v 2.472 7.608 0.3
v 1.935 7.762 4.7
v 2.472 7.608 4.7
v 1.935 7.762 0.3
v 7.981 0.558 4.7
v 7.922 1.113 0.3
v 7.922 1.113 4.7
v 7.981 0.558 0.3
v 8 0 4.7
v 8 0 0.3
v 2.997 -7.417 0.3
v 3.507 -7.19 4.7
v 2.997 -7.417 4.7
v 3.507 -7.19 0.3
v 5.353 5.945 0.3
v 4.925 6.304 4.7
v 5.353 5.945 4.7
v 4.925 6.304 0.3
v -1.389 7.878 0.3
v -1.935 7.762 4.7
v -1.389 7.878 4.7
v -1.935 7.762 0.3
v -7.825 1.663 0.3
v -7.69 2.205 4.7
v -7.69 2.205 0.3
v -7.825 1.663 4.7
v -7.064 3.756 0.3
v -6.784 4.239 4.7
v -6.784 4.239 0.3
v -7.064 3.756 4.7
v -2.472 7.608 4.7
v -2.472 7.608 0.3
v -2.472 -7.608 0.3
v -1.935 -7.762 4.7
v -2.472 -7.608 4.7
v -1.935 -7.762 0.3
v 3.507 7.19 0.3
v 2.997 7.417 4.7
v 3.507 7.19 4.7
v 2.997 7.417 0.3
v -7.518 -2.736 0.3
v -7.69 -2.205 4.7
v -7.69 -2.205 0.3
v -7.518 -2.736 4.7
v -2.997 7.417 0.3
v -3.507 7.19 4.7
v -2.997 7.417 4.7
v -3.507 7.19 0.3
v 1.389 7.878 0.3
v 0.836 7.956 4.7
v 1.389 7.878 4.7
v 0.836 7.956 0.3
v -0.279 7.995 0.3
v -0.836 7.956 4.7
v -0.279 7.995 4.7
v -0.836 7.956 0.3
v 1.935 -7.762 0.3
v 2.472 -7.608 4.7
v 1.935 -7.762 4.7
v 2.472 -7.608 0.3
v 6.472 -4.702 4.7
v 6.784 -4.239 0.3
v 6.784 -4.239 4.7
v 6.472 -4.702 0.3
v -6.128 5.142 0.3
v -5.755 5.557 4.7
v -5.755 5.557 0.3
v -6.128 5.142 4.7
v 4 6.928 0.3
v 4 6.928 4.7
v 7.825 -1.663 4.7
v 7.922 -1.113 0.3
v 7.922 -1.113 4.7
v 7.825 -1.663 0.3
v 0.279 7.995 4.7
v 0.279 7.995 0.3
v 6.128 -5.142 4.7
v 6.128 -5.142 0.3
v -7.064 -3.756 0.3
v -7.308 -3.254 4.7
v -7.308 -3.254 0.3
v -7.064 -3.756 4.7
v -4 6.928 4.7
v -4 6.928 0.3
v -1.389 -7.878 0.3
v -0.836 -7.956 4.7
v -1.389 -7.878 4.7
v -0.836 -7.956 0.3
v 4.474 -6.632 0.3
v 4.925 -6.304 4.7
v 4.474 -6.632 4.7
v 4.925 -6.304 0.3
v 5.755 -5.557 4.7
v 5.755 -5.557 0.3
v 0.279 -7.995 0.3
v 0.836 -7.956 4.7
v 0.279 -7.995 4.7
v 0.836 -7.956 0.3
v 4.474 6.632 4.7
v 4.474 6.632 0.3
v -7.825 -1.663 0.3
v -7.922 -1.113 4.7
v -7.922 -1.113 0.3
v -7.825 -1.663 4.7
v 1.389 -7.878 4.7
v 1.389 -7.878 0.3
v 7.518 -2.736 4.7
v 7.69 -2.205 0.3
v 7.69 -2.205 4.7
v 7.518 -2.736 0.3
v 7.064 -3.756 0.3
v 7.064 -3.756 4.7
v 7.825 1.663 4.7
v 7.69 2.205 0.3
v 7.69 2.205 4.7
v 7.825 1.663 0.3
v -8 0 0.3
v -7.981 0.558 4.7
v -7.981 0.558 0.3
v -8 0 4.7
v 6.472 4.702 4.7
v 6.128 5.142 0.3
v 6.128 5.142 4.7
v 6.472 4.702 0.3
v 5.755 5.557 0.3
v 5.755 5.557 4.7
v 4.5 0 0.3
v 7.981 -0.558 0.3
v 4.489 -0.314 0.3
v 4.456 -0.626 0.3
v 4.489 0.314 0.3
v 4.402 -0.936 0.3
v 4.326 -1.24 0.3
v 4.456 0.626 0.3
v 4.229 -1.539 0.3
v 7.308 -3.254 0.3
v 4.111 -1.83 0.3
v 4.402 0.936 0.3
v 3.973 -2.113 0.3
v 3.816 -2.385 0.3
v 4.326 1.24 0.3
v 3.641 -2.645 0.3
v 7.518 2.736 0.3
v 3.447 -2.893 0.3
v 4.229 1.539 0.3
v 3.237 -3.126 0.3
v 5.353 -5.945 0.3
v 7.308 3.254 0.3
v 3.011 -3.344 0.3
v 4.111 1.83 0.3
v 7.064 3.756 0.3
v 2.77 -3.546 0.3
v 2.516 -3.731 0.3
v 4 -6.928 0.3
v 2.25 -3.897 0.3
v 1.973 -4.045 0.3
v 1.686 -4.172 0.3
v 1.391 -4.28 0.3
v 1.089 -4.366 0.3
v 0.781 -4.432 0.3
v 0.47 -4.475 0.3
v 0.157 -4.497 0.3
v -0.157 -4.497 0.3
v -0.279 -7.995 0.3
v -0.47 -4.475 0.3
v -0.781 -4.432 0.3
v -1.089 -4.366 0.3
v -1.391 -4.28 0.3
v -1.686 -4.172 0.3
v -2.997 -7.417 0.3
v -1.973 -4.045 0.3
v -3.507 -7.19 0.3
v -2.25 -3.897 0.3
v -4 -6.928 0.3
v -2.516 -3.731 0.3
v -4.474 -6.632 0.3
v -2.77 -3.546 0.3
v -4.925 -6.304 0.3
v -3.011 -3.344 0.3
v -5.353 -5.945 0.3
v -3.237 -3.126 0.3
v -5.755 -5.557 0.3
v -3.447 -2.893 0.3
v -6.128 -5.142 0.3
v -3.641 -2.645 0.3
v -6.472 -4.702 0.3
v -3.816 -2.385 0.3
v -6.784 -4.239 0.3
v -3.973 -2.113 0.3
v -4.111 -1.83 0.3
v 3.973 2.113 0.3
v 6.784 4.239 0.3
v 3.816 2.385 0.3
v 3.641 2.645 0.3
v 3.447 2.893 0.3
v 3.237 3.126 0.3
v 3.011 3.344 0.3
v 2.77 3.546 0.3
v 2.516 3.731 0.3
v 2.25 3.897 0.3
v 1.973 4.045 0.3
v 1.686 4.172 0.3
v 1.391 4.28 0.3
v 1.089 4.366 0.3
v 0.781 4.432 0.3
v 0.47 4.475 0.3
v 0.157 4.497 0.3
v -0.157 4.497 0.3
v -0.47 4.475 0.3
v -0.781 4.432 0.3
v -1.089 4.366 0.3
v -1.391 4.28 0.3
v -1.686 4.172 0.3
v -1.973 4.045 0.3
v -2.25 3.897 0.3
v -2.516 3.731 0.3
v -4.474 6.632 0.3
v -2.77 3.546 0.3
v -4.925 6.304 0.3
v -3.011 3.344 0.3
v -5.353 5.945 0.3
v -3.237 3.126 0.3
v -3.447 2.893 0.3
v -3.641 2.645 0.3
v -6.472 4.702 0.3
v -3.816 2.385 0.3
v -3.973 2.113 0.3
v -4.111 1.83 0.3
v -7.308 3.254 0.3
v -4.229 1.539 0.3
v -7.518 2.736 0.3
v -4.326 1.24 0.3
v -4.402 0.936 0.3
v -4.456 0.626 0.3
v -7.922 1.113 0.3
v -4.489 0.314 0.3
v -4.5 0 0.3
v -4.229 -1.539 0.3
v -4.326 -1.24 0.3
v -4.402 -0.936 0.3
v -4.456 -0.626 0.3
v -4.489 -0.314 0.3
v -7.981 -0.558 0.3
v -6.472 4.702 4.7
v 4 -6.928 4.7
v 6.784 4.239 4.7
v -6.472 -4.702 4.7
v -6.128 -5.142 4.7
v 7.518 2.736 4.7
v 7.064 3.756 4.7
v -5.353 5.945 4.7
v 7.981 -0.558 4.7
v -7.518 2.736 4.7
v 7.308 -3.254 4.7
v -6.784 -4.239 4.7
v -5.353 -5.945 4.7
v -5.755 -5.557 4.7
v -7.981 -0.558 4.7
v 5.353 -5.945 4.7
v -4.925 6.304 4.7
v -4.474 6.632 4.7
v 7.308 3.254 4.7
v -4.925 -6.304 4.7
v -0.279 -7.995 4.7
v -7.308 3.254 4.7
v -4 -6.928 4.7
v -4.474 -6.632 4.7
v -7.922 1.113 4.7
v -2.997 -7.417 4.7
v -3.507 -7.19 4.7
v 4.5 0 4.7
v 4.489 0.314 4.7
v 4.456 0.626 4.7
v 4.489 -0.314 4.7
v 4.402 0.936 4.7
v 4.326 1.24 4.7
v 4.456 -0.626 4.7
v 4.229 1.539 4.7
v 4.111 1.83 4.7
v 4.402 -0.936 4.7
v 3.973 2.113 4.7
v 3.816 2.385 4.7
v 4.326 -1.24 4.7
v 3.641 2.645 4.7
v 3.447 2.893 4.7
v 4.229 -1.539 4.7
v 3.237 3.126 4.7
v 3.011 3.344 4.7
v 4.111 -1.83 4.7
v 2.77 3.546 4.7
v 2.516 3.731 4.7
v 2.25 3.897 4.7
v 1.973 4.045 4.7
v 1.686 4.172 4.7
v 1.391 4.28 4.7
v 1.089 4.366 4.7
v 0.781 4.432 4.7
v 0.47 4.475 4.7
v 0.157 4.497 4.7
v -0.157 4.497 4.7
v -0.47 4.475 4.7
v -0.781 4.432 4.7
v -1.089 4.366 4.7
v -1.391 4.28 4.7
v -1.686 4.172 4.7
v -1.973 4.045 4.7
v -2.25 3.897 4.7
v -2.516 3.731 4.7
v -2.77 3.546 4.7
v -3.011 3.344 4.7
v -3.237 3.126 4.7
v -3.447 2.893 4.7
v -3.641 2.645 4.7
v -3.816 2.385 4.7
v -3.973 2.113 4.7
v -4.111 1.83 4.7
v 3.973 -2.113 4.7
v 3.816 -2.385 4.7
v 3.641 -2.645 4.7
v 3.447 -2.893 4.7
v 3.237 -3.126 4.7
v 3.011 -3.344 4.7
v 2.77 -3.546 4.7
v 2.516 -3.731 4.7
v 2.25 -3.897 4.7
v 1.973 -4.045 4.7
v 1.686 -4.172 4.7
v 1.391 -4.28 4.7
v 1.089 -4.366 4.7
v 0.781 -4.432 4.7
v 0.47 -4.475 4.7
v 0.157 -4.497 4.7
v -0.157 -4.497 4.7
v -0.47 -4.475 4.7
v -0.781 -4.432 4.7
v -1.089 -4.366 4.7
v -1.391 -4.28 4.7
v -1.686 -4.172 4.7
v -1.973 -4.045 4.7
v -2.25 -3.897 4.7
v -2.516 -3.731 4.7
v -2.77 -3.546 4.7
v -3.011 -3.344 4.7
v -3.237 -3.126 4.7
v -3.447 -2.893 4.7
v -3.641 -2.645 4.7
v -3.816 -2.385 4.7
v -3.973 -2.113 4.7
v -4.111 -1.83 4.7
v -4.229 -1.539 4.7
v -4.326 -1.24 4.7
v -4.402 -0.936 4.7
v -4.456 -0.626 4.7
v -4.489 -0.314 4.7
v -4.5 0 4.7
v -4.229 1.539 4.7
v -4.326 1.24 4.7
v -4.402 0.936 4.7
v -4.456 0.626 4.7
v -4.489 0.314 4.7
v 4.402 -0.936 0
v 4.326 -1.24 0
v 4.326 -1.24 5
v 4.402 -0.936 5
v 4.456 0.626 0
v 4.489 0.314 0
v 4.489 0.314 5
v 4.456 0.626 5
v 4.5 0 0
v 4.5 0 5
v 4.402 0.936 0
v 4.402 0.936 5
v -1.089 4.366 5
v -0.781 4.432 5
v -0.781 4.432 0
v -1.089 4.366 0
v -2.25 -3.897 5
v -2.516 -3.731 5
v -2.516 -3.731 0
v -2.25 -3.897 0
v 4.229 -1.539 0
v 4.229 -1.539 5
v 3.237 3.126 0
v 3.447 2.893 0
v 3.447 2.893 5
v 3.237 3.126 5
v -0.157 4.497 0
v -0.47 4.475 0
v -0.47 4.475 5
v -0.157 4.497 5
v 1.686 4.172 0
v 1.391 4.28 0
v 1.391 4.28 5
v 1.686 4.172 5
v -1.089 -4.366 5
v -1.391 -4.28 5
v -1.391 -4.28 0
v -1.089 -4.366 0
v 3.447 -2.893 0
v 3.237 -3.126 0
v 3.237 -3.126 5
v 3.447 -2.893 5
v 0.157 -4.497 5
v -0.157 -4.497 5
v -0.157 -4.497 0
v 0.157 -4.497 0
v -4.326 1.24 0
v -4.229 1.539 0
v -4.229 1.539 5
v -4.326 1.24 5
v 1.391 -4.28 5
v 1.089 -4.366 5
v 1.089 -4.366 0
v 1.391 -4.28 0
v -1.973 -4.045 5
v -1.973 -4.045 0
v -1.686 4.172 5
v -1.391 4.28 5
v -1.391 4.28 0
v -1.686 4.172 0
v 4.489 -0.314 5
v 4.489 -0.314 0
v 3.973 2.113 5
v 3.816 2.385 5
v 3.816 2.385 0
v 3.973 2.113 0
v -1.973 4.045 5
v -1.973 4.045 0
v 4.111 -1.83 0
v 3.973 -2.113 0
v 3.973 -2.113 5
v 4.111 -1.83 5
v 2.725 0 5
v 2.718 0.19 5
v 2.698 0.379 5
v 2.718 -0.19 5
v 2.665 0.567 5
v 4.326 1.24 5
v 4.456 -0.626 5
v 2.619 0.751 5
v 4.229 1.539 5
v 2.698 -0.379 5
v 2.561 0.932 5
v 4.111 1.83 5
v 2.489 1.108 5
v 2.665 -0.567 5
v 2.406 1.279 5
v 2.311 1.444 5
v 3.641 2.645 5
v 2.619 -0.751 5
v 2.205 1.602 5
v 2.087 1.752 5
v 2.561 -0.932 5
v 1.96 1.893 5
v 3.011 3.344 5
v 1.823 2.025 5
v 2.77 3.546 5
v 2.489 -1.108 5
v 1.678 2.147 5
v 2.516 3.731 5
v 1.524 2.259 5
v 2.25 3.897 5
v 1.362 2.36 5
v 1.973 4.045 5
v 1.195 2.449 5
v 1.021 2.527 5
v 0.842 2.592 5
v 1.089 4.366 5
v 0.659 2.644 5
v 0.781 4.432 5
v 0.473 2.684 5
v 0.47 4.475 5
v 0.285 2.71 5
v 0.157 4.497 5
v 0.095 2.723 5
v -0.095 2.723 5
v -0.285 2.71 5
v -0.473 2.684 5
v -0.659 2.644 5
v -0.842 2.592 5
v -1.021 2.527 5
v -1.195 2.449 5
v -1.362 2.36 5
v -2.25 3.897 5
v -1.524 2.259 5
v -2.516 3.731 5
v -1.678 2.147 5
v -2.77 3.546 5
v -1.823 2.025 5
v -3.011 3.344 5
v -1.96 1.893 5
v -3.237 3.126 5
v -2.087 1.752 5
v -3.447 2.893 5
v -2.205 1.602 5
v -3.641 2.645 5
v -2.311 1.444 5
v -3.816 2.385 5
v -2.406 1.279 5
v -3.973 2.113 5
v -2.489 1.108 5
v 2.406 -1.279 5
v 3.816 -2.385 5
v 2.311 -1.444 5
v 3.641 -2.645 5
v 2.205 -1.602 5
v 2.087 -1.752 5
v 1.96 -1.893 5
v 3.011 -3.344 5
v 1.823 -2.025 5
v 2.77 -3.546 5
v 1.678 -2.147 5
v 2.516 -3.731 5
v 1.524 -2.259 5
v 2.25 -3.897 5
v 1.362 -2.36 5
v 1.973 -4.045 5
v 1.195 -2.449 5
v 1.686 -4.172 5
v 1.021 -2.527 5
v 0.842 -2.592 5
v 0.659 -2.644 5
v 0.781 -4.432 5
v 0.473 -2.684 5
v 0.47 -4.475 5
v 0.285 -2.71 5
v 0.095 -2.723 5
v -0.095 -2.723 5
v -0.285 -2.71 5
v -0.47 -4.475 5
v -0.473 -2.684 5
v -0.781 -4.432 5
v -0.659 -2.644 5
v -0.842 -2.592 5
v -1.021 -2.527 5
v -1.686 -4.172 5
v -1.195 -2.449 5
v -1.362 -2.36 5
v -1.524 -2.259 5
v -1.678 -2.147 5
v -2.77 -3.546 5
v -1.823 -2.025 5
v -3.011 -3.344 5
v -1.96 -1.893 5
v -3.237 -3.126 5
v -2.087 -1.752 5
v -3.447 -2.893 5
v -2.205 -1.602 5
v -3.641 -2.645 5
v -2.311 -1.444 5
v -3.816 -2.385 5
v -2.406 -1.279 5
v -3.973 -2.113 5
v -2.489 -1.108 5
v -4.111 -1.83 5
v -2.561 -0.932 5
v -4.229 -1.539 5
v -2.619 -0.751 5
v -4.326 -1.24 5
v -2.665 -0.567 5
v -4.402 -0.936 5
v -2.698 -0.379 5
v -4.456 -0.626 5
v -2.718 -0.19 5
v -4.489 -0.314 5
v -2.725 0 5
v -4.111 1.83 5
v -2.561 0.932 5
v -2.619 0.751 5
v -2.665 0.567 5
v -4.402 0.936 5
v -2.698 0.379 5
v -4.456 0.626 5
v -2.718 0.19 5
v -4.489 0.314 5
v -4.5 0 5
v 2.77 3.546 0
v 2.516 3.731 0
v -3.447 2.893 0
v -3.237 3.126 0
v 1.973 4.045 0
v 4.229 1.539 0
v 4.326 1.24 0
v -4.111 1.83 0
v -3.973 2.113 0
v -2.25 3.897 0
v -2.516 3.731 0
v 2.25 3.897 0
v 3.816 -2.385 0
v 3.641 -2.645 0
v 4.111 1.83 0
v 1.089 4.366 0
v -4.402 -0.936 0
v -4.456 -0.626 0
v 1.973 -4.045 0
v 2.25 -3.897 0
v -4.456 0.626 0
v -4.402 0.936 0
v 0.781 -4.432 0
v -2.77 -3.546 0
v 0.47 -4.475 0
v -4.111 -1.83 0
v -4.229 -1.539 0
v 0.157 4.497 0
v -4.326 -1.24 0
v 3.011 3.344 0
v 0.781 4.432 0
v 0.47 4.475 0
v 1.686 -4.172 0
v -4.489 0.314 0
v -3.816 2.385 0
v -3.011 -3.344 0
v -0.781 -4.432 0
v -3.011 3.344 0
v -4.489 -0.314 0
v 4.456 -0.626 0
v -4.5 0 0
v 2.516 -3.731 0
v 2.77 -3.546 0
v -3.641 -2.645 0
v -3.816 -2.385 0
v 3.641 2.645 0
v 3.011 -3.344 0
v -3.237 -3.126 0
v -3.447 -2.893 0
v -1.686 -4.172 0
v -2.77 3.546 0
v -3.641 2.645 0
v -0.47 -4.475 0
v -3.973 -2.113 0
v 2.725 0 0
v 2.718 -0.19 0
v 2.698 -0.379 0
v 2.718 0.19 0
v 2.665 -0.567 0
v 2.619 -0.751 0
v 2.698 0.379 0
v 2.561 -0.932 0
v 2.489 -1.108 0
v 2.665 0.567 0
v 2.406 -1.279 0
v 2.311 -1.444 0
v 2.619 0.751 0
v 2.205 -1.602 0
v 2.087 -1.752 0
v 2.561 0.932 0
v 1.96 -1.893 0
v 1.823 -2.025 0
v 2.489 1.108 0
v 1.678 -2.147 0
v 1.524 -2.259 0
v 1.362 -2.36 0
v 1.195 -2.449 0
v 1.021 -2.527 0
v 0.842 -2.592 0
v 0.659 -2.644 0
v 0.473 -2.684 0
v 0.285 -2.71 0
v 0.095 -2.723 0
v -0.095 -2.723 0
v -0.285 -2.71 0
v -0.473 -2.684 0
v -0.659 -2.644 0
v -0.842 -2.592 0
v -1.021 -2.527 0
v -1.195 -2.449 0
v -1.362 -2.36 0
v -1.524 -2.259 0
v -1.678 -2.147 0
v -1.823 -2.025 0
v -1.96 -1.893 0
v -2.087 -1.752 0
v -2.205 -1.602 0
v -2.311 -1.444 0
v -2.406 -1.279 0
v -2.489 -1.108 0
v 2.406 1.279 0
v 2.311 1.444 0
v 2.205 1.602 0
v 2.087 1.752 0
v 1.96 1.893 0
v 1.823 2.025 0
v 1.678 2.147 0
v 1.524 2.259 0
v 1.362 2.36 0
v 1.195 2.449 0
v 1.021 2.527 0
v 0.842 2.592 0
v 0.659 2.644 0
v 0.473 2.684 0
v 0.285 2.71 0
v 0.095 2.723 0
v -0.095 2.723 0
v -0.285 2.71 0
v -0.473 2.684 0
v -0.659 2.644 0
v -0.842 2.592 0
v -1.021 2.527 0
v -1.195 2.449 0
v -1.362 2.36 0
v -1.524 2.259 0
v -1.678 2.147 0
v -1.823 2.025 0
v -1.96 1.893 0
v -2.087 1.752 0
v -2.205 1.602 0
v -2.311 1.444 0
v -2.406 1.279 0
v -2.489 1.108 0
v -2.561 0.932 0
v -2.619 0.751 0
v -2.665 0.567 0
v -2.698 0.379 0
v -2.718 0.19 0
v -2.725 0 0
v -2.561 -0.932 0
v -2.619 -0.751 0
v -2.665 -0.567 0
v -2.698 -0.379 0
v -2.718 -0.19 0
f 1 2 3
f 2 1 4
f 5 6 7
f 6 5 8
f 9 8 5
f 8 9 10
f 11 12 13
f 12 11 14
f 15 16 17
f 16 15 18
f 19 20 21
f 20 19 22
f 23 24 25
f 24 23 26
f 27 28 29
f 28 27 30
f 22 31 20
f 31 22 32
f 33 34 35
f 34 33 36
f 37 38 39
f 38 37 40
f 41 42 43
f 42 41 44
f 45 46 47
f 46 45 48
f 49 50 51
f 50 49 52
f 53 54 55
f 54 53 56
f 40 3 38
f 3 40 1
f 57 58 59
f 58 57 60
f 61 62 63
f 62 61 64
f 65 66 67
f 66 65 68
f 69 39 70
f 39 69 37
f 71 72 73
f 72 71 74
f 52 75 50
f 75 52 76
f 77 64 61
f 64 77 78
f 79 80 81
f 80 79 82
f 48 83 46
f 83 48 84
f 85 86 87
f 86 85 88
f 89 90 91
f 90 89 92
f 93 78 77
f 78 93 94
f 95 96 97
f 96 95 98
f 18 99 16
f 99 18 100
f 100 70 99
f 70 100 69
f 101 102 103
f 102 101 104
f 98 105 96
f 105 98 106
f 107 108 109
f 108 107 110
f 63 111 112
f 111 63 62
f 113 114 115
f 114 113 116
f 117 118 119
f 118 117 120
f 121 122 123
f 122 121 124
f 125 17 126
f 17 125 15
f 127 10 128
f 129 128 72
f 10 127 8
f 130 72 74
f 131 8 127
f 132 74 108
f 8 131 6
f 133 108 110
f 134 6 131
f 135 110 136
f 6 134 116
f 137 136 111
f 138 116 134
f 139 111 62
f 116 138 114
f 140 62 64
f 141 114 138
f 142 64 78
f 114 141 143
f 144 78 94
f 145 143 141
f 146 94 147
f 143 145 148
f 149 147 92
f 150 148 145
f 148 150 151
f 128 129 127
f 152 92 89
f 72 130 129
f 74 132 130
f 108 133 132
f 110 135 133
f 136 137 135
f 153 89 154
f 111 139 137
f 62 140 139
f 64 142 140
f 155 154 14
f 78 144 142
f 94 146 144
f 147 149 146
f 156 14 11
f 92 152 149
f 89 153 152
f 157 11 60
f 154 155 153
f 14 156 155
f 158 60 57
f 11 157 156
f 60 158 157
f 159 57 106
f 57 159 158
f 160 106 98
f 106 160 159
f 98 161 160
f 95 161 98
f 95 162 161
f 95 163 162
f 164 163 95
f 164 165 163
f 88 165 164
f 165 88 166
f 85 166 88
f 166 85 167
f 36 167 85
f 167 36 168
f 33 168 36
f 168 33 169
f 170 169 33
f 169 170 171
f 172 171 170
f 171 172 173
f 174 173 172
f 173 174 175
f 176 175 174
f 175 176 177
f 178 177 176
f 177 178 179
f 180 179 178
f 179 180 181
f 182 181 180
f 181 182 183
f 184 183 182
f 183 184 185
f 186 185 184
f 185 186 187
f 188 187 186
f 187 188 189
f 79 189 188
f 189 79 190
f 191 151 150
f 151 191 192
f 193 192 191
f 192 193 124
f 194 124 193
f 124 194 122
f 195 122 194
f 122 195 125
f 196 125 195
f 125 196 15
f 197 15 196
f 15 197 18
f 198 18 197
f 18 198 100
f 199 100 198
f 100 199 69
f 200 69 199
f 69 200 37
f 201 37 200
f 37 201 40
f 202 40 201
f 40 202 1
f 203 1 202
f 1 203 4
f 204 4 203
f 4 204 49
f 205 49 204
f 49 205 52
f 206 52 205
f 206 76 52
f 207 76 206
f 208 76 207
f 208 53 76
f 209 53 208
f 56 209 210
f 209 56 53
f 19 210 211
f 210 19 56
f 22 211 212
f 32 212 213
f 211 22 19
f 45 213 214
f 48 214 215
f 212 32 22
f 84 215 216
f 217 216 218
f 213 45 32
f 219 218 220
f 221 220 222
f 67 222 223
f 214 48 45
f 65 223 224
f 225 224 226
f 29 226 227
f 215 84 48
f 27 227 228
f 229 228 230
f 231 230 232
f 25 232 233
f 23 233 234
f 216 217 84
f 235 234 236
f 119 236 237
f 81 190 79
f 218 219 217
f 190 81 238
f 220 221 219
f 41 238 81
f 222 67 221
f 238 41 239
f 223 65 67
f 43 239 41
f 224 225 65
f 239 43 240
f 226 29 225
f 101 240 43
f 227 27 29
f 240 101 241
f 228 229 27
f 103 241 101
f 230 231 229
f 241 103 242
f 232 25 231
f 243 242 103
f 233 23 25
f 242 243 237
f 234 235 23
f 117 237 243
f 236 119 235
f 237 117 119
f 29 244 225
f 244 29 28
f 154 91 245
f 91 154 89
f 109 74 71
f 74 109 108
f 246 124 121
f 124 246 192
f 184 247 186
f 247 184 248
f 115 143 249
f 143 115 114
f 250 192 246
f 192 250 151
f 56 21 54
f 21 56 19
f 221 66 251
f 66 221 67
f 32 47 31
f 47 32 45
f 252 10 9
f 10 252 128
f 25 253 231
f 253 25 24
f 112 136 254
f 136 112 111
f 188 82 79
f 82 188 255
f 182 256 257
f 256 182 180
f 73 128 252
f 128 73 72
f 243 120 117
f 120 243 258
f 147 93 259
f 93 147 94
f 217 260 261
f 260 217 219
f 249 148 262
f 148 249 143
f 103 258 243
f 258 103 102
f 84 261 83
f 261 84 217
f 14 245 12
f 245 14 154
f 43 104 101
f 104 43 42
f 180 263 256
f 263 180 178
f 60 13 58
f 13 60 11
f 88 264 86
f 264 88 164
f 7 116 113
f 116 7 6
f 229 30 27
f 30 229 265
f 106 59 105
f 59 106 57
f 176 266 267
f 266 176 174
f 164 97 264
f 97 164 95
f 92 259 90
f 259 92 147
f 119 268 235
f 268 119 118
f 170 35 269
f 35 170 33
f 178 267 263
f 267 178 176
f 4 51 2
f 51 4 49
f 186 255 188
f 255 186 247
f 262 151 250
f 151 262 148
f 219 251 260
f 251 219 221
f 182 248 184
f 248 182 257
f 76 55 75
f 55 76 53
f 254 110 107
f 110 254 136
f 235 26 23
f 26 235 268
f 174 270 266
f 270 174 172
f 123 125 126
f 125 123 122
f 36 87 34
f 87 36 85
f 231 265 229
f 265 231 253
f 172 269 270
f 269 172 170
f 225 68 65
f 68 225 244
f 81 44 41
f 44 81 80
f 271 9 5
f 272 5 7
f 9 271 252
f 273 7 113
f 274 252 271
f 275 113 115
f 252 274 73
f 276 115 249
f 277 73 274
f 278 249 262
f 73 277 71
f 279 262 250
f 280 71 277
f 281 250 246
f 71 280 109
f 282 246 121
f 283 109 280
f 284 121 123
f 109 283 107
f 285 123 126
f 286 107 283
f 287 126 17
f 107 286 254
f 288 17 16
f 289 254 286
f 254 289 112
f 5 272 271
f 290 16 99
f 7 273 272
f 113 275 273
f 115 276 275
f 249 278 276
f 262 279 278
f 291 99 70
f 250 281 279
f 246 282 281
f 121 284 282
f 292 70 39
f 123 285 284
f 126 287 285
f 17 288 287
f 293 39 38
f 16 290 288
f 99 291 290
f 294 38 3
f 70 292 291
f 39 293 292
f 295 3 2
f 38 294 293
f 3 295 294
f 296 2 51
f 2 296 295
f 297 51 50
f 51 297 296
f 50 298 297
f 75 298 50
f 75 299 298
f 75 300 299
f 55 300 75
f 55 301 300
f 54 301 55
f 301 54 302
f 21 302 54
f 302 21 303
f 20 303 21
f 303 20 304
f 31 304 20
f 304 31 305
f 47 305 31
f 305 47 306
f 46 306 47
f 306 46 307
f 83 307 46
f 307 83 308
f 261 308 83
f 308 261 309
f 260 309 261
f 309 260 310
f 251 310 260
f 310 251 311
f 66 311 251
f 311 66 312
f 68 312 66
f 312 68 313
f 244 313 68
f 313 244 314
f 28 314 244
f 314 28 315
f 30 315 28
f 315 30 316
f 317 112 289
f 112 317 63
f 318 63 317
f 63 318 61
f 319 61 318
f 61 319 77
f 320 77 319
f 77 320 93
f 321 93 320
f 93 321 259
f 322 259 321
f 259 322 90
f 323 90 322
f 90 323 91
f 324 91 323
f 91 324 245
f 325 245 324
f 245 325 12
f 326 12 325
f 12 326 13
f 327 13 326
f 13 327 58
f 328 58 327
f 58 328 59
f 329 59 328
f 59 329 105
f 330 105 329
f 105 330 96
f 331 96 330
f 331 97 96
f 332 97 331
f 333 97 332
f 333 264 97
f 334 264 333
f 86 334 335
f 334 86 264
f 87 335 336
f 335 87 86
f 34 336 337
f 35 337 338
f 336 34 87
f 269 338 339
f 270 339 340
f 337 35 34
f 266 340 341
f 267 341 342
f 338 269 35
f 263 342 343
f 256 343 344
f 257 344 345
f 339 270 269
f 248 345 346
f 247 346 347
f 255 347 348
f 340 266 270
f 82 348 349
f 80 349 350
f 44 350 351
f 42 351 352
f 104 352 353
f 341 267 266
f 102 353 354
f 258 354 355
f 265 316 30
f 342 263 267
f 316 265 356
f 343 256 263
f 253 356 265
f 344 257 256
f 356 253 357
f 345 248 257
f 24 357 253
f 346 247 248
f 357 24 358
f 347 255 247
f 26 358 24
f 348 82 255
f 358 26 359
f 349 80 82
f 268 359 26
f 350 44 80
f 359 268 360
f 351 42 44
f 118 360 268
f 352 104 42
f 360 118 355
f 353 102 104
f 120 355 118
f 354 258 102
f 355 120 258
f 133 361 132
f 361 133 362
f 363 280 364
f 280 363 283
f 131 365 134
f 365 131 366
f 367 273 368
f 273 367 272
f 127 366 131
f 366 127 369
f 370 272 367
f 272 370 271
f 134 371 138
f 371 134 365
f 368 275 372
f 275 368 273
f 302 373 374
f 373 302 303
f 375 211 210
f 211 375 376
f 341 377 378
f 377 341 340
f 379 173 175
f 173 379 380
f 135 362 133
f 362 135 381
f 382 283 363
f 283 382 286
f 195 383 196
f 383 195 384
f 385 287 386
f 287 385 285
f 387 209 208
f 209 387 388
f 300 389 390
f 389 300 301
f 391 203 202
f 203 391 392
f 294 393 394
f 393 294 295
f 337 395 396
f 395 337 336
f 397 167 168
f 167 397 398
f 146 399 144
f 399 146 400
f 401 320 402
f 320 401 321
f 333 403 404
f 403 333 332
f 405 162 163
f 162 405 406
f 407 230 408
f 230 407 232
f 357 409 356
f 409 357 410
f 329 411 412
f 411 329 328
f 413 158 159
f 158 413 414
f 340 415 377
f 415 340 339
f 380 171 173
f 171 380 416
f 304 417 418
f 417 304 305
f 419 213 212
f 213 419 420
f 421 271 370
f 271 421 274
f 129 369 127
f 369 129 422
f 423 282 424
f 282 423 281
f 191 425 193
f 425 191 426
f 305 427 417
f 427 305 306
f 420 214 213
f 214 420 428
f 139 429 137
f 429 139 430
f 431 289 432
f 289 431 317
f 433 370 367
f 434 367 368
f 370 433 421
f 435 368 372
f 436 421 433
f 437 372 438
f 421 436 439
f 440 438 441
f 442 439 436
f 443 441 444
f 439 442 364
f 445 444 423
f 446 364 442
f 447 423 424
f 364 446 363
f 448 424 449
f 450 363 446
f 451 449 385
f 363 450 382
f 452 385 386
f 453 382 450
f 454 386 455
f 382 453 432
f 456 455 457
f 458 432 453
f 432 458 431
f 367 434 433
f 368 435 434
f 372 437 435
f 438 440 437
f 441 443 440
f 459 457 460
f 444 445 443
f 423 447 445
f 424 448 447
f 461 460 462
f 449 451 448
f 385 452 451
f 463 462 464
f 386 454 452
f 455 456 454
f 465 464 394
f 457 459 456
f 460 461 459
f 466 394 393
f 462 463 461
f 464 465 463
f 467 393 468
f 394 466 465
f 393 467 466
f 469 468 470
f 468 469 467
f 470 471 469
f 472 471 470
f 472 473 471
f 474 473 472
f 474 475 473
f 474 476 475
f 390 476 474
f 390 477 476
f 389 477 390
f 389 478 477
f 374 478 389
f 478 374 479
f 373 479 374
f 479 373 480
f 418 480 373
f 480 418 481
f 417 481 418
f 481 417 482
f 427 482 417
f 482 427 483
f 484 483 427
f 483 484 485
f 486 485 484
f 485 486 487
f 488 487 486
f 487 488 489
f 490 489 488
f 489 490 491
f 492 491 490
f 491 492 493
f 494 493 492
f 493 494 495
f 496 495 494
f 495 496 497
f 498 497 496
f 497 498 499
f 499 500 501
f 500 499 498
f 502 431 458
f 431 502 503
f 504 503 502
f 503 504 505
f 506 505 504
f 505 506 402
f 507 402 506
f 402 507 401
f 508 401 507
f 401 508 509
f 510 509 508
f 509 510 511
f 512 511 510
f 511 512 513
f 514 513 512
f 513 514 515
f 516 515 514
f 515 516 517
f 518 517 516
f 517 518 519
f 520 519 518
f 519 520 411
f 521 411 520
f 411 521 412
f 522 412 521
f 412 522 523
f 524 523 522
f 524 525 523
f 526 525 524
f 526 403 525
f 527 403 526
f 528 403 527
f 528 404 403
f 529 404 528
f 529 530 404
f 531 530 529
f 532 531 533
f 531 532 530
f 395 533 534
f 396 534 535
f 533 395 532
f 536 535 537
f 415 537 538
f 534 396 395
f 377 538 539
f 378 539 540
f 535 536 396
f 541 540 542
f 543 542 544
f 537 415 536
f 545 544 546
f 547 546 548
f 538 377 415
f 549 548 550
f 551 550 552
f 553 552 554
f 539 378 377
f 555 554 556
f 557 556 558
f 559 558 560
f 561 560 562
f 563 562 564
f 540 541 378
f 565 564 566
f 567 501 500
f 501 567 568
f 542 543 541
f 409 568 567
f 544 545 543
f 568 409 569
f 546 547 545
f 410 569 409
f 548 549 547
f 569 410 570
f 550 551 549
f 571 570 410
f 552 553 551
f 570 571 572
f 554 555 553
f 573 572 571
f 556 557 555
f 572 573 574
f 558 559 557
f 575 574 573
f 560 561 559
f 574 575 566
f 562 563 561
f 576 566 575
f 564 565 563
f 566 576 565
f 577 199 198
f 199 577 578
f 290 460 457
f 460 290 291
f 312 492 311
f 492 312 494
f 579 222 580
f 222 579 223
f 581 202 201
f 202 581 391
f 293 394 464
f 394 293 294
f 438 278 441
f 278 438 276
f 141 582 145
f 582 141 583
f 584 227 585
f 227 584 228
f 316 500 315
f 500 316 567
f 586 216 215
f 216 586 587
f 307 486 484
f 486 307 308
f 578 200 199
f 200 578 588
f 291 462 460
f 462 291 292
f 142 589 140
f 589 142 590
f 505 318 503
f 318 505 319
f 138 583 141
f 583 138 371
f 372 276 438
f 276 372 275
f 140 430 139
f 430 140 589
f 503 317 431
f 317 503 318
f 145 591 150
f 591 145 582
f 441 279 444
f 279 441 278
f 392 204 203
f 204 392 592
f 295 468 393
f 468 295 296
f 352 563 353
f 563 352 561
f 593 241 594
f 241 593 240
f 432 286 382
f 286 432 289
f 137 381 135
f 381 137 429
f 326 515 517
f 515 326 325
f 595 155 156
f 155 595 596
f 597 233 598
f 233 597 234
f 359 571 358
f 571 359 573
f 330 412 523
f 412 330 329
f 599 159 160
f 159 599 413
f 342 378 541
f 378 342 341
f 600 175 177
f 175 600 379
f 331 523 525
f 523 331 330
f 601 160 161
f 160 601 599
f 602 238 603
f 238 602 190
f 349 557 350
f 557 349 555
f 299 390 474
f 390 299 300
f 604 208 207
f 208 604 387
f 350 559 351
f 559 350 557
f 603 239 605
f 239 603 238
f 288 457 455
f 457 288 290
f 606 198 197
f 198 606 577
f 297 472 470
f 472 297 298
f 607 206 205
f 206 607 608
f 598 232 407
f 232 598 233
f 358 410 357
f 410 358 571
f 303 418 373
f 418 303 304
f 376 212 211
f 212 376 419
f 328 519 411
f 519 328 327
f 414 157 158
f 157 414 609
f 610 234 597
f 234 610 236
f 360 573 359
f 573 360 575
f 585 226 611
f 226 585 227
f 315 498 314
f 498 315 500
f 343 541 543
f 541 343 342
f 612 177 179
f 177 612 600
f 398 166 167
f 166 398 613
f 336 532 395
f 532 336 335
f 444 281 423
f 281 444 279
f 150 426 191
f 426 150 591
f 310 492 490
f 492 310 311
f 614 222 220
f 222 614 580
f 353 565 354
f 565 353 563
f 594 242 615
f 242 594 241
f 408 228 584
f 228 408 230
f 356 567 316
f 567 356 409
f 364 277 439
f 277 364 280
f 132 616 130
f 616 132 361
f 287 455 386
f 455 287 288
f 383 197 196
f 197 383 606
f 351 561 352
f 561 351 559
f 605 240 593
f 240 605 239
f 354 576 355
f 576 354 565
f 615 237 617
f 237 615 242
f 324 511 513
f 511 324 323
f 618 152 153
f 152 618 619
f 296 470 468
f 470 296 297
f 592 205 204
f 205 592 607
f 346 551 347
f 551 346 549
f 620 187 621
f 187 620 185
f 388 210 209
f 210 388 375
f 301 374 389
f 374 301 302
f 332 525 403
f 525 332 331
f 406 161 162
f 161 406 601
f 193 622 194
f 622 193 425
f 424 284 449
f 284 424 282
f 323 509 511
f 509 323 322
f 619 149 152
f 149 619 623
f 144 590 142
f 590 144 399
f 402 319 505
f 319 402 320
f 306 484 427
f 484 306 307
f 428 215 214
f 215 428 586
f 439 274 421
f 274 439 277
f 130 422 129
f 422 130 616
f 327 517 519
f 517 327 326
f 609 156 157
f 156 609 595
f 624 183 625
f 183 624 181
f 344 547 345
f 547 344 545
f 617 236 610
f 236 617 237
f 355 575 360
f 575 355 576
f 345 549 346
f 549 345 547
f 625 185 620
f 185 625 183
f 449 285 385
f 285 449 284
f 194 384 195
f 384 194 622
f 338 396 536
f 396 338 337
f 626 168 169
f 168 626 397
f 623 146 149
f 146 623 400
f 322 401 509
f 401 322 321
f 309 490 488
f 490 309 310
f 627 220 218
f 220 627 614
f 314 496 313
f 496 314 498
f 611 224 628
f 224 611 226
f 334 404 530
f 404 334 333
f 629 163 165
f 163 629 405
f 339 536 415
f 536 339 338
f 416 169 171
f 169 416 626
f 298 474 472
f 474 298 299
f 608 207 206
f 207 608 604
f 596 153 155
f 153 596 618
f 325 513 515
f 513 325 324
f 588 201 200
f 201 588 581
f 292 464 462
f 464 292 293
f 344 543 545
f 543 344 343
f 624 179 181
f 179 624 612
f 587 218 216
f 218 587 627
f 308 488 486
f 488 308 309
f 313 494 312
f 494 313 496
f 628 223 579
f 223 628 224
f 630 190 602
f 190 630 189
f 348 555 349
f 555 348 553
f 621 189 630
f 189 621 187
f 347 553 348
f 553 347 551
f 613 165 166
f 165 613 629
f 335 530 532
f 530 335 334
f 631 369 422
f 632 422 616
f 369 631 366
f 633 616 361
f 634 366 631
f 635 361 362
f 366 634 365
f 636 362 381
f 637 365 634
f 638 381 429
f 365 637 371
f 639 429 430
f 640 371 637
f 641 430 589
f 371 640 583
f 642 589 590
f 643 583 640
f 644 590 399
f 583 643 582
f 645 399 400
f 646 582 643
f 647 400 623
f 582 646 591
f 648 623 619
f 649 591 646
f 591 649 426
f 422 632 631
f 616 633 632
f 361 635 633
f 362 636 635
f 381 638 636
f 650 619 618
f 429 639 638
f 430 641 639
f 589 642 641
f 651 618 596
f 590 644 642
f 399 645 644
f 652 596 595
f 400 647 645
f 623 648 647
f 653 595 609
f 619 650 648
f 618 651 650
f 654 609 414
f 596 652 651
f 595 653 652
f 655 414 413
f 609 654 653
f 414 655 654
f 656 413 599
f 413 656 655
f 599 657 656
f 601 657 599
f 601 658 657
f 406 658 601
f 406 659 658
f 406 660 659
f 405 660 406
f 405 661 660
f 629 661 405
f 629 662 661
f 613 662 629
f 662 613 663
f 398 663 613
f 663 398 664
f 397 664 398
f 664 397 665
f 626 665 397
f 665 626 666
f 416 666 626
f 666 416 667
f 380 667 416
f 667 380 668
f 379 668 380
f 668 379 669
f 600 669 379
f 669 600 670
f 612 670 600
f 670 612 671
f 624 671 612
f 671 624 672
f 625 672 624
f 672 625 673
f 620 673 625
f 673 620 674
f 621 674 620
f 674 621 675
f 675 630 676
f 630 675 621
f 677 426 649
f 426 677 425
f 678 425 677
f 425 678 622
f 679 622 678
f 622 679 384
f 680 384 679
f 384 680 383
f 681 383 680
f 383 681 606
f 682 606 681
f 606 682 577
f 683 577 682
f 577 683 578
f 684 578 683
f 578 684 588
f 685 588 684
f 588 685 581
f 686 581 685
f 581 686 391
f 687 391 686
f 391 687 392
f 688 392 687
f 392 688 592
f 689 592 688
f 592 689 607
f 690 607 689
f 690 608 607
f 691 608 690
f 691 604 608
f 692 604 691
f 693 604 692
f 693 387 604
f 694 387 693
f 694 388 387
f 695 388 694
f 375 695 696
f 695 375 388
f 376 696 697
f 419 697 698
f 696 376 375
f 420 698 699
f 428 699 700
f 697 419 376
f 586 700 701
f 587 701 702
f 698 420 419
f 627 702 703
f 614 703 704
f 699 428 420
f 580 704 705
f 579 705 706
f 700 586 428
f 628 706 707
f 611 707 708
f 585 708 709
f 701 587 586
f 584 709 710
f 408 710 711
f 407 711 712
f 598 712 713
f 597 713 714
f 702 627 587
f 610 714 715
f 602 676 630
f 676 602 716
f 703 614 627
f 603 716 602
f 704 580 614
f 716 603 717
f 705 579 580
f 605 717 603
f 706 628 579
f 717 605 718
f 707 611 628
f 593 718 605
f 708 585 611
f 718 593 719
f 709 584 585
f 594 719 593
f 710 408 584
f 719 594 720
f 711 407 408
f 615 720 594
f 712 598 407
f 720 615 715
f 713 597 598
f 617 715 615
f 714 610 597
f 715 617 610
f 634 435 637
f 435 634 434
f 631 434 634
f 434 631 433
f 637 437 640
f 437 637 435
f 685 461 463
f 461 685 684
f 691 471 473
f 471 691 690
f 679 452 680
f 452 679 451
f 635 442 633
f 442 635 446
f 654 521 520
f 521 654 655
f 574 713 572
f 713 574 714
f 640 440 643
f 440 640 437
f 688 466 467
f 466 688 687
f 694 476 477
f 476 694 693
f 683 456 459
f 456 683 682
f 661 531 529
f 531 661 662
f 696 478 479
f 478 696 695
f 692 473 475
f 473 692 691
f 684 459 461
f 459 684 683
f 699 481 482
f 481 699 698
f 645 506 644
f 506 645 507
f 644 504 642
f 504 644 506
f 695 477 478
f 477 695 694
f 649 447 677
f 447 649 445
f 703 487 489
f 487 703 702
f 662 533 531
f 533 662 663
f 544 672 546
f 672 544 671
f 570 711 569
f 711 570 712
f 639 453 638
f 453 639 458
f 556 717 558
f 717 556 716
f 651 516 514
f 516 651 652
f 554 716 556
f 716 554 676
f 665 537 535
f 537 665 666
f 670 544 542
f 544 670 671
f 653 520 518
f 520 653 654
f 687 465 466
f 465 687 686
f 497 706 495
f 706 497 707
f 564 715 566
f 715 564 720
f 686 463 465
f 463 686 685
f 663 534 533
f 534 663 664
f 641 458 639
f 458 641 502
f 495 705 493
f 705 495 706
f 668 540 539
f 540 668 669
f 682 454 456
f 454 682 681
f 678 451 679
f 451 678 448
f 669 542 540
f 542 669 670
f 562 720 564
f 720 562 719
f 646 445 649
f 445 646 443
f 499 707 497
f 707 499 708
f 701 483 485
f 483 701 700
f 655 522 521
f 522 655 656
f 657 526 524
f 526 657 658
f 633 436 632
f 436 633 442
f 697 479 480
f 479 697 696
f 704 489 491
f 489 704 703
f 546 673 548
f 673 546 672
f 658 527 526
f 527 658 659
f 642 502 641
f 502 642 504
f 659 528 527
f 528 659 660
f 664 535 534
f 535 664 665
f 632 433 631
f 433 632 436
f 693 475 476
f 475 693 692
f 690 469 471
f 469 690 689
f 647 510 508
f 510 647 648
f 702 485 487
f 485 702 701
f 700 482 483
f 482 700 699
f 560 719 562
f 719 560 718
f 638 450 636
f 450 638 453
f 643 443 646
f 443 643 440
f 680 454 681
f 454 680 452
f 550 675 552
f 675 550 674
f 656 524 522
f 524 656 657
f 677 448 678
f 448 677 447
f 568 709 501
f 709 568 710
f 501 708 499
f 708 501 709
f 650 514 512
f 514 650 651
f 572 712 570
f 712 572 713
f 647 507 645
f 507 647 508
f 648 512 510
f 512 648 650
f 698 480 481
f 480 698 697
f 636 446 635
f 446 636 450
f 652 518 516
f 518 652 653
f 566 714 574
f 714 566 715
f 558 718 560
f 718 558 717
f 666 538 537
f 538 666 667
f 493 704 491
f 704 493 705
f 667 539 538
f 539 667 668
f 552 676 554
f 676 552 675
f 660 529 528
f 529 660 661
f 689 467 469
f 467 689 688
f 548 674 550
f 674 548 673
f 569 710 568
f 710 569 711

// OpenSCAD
// Printed pinch roller: replaces the 625 ball bearing on each corner unit's pinch post.
// It spins on the M5 bolt and only presses the belt onto the drive pulley.
// Same size as a 625 (16mm across, 5mm thick), so nothing else changes.
// Tighten the nyloc nut above it only until the roller still spins freely.
// Print flat. Use 100% infill for these: they are small and should be solid.

od     = 16;
width  = 5;
bore_d = 5.45;   // M5 bolt plus running clearance
hub_d  = 9;      // slightly raised hub, so only the centre touches the spacer and nut
hub_h  = 0.3;

$fn = 90;

module pinch_roller() {
    difference() {
        union() {
            translate([0, 0, hub_h]) cylinder(h = width - 2 * hub_h, d = od);
            cylinder(h = width, d = hub_d);
        }
        translate([0, 0, -1]) cylinder(h = width + 2, d = bore_d);
    }
}

pinch_roller();
